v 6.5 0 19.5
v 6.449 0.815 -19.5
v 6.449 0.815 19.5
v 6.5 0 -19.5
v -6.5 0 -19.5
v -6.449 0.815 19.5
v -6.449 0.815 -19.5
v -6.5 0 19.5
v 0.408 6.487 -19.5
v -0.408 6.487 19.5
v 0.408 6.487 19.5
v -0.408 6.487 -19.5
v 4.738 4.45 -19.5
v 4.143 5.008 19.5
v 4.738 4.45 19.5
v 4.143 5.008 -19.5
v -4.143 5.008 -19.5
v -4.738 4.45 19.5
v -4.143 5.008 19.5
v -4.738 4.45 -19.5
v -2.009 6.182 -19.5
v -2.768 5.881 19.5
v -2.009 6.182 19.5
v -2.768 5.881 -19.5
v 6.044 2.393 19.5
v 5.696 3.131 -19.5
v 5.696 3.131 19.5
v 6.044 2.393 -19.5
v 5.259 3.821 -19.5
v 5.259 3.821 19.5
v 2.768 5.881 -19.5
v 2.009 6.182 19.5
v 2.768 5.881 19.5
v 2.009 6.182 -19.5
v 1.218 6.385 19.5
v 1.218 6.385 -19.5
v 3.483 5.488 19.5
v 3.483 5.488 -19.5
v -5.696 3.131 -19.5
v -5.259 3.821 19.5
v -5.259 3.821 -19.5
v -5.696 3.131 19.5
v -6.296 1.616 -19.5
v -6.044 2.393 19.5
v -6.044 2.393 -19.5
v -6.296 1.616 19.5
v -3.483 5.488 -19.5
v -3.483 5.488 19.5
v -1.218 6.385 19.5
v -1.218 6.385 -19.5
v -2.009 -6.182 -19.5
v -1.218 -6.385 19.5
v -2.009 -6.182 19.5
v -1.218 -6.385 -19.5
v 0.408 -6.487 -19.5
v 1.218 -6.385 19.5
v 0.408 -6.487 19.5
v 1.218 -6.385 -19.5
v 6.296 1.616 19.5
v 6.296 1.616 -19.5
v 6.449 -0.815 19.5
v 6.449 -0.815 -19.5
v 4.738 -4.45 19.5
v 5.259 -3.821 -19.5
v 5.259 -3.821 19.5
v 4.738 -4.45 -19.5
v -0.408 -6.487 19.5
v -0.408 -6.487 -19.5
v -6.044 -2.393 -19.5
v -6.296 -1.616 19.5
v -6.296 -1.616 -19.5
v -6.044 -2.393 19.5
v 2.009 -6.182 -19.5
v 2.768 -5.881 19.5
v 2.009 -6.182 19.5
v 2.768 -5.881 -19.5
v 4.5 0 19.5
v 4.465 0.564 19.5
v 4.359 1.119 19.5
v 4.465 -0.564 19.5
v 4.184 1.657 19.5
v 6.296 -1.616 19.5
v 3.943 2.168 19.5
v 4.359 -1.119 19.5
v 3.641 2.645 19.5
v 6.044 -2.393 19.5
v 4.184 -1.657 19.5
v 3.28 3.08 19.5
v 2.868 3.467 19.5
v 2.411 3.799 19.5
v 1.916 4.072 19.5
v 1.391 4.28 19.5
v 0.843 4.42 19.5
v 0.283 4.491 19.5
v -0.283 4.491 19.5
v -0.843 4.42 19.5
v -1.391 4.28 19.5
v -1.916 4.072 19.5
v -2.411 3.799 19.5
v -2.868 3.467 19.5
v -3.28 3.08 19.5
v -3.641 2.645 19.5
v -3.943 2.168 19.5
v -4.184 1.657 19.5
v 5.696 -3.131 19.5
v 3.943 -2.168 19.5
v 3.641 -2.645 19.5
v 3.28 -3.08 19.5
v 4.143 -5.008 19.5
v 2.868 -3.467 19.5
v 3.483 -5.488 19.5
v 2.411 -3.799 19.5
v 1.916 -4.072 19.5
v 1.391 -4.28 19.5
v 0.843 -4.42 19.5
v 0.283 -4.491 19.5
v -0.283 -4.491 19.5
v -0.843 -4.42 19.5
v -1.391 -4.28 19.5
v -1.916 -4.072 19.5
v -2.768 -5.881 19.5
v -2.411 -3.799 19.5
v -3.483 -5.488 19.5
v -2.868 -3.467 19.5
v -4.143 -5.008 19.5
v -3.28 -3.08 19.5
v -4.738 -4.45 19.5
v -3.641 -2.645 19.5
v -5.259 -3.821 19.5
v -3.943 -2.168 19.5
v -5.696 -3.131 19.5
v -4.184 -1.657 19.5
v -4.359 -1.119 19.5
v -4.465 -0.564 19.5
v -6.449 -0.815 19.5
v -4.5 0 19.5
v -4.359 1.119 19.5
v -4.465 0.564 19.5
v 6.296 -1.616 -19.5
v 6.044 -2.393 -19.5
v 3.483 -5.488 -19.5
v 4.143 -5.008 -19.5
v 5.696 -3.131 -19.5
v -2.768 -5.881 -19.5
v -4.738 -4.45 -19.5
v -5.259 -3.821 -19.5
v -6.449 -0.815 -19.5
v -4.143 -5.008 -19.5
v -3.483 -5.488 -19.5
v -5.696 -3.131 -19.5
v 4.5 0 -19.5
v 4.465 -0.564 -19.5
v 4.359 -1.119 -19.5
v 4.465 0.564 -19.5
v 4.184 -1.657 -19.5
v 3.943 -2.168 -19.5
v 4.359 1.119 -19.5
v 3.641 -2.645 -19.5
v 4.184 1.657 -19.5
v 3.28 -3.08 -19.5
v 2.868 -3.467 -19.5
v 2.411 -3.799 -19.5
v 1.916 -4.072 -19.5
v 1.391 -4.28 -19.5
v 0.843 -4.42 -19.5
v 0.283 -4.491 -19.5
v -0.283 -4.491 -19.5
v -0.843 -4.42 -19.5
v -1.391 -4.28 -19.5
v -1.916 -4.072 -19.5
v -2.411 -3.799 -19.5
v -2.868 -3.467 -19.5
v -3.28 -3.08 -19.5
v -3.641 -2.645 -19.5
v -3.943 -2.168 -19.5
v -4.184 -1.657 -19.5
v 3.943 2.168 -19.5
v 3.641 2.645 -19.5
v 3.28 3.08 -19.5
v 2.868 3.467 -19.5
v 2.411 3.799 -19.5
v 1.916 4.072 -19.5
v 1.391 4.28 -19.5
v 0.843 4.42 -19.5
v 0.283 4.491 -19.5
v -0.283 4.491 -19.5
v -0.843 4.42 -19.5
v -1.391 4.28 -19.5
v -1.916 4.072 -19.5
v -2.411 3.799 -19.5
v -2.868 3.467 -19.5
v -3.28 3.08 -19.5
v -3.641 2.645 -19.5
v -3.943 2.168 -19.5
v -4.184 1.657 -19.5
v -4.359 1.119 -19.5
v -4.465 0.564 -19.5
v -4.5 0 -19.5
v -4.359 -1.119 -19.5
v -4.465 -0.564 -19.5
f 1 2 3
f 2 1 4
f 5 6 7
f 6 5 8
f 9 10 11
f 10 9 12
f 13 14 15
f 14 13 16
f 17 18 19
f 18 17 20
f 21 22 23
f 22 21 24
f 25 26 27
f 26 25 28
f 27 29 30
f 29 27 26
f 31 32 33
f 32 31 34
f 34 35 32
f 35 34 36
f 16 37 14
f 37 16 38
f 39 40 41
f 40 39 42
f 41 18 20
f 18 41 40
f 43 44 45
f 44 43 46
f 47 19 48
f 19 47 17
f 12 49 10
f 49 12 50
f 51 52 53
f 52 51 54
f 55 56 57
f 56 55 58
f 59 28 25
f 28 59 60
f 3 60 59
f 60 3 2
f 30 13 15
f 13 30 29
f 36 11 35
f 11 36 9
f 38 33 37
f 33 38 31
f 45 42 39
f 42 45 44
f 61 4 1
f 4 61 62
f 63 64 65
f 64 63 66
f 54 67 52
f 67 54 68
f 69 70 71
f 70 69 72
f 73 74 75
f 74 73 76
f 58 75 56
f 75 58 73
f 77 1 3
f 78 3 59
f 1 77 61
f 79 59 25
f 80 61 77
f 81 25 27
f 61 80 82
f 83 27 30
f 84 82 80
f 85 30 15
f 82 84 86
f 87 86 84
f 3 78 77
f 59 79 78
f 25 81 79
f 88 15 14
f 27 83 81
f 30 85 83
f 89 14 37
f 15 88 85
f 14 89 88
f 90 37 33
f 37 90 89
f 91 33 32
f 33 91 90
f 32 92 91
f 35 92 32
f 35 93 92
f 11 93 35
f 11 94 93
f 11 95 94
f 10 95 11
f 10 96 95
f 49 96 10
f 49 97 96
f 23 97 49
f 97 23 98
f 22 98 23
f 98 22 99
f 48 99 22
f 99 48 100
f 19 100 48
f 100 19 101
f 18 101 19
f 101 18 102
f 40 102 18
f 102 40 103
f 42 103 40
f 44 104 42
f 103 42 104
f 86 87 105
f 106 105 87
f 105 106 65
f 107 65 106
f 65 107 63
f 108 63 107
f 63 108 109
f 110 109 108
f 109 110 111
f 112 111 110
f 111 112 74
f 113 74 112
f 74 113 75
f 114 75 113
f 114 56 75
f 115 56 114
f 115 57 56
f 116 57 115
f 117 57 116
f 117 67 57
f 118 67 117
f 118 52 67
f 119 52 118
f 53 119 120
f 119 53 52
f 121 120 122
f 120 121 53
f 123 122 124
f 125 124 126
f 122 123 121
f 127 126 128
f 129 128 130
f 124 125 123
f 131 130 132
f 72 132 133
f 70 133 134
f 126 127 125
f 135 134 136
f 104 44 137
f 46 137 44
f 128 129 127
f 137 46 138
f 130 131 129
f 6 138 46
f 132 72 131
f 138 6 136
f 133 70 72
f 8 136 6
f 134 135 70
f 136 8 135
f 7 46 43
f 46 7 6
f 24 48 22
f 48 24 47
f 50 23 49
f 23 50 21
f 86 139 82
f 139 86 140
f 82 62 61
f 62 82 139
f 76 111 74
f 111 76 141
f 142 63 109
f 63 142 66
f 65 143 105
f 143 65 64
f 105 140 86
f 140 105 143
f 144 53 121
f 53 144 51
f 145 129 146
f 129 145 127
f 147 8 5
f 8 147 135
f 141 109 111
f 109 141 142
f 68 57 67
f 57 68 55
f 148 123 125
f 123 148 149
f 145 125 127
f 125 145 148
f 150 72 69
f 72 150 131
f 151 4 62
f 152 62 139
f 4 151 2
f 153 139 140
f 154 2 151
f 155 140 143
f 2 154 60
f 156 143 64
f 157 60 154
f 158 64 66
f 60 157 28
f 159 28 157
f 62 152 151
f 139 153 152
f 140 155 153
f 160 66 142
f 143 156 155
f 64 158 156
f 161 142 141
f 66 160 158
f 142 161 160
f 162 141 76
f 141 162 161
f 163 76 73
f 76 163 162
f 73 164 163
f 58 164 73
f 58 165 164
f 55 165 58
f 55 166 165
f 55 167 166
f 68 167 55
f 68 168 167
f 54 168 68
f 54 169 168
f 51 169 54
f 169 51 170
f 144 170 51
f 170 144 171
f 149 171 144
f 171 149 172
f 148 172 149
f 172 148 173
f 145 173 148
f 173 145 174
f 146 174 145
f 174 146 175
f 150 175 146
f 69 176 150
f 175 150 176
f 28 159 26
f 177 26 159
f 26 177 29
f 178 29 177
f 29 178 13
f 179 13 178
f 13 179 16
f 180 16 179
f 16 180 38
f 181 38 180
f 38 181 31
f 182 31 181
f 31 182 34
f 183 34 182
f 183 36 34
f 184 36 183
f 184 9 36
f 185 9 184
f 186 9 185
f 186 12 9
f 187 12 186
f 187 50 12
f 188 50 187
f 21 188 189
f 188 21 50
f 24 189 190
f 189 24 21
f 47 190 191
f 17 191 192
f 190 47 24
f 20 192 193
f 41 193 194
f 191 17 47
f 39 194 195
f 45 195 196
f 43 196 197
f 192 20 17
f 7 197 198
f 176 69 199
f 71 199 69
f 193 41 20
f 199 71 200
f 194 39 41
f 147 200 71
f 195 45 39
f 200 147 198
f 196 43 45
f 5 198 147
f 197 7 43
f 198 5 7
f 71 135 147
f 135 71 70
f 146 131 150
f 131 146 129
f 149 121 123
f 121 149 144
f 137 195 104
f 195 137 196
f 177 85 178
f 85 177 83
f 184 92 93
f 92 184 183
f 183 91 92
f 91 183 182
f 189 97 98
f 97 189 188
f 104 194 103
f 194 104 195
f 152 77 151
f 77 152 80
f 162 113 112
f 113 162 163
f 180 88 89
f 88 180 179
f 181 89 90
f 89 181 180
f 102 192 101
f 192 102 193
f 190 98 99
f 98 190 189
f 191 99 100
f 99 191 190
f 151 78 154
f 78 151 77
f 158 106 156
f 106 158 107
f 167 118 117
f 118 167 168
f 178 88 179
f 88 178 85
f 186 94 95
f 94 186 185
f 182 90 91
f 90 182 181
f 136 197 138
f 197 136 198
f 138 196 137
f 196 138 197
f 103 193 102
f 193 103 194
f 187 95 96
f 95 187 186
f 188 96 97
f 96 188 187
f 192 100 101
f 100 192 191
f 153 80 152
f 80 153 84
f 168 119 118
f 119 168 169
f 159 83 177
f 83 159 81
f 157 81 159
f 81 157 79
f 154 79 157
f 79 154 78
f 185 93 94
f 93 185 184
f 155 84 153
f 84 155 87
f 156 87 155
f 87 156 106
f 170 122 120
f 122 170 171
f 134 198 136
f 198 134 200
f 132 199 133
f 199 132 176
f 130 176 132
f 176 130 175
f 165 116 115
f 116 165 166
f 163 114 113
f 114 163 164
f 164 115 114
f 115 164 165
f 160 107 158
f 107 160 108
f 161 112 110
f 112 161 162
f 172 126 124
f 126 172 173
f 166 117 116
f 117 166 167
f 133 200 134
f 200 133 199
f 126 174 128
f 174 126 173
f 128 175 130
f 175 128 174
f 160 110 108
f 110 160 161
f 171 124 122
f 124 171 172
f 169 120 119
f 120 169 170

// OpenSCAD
$fn = 50;


difference() {
	union() {
		translate(v = [0, 0, -19.5000000000]) {
			cylinder(h = 39, r = 6.5000000000);
		}
	}
	union() {
		translate(v = [0, 0, -100.0000000000]) {
			cylinder(h = 200, r = 4.5000000000);
		}
	}
}
